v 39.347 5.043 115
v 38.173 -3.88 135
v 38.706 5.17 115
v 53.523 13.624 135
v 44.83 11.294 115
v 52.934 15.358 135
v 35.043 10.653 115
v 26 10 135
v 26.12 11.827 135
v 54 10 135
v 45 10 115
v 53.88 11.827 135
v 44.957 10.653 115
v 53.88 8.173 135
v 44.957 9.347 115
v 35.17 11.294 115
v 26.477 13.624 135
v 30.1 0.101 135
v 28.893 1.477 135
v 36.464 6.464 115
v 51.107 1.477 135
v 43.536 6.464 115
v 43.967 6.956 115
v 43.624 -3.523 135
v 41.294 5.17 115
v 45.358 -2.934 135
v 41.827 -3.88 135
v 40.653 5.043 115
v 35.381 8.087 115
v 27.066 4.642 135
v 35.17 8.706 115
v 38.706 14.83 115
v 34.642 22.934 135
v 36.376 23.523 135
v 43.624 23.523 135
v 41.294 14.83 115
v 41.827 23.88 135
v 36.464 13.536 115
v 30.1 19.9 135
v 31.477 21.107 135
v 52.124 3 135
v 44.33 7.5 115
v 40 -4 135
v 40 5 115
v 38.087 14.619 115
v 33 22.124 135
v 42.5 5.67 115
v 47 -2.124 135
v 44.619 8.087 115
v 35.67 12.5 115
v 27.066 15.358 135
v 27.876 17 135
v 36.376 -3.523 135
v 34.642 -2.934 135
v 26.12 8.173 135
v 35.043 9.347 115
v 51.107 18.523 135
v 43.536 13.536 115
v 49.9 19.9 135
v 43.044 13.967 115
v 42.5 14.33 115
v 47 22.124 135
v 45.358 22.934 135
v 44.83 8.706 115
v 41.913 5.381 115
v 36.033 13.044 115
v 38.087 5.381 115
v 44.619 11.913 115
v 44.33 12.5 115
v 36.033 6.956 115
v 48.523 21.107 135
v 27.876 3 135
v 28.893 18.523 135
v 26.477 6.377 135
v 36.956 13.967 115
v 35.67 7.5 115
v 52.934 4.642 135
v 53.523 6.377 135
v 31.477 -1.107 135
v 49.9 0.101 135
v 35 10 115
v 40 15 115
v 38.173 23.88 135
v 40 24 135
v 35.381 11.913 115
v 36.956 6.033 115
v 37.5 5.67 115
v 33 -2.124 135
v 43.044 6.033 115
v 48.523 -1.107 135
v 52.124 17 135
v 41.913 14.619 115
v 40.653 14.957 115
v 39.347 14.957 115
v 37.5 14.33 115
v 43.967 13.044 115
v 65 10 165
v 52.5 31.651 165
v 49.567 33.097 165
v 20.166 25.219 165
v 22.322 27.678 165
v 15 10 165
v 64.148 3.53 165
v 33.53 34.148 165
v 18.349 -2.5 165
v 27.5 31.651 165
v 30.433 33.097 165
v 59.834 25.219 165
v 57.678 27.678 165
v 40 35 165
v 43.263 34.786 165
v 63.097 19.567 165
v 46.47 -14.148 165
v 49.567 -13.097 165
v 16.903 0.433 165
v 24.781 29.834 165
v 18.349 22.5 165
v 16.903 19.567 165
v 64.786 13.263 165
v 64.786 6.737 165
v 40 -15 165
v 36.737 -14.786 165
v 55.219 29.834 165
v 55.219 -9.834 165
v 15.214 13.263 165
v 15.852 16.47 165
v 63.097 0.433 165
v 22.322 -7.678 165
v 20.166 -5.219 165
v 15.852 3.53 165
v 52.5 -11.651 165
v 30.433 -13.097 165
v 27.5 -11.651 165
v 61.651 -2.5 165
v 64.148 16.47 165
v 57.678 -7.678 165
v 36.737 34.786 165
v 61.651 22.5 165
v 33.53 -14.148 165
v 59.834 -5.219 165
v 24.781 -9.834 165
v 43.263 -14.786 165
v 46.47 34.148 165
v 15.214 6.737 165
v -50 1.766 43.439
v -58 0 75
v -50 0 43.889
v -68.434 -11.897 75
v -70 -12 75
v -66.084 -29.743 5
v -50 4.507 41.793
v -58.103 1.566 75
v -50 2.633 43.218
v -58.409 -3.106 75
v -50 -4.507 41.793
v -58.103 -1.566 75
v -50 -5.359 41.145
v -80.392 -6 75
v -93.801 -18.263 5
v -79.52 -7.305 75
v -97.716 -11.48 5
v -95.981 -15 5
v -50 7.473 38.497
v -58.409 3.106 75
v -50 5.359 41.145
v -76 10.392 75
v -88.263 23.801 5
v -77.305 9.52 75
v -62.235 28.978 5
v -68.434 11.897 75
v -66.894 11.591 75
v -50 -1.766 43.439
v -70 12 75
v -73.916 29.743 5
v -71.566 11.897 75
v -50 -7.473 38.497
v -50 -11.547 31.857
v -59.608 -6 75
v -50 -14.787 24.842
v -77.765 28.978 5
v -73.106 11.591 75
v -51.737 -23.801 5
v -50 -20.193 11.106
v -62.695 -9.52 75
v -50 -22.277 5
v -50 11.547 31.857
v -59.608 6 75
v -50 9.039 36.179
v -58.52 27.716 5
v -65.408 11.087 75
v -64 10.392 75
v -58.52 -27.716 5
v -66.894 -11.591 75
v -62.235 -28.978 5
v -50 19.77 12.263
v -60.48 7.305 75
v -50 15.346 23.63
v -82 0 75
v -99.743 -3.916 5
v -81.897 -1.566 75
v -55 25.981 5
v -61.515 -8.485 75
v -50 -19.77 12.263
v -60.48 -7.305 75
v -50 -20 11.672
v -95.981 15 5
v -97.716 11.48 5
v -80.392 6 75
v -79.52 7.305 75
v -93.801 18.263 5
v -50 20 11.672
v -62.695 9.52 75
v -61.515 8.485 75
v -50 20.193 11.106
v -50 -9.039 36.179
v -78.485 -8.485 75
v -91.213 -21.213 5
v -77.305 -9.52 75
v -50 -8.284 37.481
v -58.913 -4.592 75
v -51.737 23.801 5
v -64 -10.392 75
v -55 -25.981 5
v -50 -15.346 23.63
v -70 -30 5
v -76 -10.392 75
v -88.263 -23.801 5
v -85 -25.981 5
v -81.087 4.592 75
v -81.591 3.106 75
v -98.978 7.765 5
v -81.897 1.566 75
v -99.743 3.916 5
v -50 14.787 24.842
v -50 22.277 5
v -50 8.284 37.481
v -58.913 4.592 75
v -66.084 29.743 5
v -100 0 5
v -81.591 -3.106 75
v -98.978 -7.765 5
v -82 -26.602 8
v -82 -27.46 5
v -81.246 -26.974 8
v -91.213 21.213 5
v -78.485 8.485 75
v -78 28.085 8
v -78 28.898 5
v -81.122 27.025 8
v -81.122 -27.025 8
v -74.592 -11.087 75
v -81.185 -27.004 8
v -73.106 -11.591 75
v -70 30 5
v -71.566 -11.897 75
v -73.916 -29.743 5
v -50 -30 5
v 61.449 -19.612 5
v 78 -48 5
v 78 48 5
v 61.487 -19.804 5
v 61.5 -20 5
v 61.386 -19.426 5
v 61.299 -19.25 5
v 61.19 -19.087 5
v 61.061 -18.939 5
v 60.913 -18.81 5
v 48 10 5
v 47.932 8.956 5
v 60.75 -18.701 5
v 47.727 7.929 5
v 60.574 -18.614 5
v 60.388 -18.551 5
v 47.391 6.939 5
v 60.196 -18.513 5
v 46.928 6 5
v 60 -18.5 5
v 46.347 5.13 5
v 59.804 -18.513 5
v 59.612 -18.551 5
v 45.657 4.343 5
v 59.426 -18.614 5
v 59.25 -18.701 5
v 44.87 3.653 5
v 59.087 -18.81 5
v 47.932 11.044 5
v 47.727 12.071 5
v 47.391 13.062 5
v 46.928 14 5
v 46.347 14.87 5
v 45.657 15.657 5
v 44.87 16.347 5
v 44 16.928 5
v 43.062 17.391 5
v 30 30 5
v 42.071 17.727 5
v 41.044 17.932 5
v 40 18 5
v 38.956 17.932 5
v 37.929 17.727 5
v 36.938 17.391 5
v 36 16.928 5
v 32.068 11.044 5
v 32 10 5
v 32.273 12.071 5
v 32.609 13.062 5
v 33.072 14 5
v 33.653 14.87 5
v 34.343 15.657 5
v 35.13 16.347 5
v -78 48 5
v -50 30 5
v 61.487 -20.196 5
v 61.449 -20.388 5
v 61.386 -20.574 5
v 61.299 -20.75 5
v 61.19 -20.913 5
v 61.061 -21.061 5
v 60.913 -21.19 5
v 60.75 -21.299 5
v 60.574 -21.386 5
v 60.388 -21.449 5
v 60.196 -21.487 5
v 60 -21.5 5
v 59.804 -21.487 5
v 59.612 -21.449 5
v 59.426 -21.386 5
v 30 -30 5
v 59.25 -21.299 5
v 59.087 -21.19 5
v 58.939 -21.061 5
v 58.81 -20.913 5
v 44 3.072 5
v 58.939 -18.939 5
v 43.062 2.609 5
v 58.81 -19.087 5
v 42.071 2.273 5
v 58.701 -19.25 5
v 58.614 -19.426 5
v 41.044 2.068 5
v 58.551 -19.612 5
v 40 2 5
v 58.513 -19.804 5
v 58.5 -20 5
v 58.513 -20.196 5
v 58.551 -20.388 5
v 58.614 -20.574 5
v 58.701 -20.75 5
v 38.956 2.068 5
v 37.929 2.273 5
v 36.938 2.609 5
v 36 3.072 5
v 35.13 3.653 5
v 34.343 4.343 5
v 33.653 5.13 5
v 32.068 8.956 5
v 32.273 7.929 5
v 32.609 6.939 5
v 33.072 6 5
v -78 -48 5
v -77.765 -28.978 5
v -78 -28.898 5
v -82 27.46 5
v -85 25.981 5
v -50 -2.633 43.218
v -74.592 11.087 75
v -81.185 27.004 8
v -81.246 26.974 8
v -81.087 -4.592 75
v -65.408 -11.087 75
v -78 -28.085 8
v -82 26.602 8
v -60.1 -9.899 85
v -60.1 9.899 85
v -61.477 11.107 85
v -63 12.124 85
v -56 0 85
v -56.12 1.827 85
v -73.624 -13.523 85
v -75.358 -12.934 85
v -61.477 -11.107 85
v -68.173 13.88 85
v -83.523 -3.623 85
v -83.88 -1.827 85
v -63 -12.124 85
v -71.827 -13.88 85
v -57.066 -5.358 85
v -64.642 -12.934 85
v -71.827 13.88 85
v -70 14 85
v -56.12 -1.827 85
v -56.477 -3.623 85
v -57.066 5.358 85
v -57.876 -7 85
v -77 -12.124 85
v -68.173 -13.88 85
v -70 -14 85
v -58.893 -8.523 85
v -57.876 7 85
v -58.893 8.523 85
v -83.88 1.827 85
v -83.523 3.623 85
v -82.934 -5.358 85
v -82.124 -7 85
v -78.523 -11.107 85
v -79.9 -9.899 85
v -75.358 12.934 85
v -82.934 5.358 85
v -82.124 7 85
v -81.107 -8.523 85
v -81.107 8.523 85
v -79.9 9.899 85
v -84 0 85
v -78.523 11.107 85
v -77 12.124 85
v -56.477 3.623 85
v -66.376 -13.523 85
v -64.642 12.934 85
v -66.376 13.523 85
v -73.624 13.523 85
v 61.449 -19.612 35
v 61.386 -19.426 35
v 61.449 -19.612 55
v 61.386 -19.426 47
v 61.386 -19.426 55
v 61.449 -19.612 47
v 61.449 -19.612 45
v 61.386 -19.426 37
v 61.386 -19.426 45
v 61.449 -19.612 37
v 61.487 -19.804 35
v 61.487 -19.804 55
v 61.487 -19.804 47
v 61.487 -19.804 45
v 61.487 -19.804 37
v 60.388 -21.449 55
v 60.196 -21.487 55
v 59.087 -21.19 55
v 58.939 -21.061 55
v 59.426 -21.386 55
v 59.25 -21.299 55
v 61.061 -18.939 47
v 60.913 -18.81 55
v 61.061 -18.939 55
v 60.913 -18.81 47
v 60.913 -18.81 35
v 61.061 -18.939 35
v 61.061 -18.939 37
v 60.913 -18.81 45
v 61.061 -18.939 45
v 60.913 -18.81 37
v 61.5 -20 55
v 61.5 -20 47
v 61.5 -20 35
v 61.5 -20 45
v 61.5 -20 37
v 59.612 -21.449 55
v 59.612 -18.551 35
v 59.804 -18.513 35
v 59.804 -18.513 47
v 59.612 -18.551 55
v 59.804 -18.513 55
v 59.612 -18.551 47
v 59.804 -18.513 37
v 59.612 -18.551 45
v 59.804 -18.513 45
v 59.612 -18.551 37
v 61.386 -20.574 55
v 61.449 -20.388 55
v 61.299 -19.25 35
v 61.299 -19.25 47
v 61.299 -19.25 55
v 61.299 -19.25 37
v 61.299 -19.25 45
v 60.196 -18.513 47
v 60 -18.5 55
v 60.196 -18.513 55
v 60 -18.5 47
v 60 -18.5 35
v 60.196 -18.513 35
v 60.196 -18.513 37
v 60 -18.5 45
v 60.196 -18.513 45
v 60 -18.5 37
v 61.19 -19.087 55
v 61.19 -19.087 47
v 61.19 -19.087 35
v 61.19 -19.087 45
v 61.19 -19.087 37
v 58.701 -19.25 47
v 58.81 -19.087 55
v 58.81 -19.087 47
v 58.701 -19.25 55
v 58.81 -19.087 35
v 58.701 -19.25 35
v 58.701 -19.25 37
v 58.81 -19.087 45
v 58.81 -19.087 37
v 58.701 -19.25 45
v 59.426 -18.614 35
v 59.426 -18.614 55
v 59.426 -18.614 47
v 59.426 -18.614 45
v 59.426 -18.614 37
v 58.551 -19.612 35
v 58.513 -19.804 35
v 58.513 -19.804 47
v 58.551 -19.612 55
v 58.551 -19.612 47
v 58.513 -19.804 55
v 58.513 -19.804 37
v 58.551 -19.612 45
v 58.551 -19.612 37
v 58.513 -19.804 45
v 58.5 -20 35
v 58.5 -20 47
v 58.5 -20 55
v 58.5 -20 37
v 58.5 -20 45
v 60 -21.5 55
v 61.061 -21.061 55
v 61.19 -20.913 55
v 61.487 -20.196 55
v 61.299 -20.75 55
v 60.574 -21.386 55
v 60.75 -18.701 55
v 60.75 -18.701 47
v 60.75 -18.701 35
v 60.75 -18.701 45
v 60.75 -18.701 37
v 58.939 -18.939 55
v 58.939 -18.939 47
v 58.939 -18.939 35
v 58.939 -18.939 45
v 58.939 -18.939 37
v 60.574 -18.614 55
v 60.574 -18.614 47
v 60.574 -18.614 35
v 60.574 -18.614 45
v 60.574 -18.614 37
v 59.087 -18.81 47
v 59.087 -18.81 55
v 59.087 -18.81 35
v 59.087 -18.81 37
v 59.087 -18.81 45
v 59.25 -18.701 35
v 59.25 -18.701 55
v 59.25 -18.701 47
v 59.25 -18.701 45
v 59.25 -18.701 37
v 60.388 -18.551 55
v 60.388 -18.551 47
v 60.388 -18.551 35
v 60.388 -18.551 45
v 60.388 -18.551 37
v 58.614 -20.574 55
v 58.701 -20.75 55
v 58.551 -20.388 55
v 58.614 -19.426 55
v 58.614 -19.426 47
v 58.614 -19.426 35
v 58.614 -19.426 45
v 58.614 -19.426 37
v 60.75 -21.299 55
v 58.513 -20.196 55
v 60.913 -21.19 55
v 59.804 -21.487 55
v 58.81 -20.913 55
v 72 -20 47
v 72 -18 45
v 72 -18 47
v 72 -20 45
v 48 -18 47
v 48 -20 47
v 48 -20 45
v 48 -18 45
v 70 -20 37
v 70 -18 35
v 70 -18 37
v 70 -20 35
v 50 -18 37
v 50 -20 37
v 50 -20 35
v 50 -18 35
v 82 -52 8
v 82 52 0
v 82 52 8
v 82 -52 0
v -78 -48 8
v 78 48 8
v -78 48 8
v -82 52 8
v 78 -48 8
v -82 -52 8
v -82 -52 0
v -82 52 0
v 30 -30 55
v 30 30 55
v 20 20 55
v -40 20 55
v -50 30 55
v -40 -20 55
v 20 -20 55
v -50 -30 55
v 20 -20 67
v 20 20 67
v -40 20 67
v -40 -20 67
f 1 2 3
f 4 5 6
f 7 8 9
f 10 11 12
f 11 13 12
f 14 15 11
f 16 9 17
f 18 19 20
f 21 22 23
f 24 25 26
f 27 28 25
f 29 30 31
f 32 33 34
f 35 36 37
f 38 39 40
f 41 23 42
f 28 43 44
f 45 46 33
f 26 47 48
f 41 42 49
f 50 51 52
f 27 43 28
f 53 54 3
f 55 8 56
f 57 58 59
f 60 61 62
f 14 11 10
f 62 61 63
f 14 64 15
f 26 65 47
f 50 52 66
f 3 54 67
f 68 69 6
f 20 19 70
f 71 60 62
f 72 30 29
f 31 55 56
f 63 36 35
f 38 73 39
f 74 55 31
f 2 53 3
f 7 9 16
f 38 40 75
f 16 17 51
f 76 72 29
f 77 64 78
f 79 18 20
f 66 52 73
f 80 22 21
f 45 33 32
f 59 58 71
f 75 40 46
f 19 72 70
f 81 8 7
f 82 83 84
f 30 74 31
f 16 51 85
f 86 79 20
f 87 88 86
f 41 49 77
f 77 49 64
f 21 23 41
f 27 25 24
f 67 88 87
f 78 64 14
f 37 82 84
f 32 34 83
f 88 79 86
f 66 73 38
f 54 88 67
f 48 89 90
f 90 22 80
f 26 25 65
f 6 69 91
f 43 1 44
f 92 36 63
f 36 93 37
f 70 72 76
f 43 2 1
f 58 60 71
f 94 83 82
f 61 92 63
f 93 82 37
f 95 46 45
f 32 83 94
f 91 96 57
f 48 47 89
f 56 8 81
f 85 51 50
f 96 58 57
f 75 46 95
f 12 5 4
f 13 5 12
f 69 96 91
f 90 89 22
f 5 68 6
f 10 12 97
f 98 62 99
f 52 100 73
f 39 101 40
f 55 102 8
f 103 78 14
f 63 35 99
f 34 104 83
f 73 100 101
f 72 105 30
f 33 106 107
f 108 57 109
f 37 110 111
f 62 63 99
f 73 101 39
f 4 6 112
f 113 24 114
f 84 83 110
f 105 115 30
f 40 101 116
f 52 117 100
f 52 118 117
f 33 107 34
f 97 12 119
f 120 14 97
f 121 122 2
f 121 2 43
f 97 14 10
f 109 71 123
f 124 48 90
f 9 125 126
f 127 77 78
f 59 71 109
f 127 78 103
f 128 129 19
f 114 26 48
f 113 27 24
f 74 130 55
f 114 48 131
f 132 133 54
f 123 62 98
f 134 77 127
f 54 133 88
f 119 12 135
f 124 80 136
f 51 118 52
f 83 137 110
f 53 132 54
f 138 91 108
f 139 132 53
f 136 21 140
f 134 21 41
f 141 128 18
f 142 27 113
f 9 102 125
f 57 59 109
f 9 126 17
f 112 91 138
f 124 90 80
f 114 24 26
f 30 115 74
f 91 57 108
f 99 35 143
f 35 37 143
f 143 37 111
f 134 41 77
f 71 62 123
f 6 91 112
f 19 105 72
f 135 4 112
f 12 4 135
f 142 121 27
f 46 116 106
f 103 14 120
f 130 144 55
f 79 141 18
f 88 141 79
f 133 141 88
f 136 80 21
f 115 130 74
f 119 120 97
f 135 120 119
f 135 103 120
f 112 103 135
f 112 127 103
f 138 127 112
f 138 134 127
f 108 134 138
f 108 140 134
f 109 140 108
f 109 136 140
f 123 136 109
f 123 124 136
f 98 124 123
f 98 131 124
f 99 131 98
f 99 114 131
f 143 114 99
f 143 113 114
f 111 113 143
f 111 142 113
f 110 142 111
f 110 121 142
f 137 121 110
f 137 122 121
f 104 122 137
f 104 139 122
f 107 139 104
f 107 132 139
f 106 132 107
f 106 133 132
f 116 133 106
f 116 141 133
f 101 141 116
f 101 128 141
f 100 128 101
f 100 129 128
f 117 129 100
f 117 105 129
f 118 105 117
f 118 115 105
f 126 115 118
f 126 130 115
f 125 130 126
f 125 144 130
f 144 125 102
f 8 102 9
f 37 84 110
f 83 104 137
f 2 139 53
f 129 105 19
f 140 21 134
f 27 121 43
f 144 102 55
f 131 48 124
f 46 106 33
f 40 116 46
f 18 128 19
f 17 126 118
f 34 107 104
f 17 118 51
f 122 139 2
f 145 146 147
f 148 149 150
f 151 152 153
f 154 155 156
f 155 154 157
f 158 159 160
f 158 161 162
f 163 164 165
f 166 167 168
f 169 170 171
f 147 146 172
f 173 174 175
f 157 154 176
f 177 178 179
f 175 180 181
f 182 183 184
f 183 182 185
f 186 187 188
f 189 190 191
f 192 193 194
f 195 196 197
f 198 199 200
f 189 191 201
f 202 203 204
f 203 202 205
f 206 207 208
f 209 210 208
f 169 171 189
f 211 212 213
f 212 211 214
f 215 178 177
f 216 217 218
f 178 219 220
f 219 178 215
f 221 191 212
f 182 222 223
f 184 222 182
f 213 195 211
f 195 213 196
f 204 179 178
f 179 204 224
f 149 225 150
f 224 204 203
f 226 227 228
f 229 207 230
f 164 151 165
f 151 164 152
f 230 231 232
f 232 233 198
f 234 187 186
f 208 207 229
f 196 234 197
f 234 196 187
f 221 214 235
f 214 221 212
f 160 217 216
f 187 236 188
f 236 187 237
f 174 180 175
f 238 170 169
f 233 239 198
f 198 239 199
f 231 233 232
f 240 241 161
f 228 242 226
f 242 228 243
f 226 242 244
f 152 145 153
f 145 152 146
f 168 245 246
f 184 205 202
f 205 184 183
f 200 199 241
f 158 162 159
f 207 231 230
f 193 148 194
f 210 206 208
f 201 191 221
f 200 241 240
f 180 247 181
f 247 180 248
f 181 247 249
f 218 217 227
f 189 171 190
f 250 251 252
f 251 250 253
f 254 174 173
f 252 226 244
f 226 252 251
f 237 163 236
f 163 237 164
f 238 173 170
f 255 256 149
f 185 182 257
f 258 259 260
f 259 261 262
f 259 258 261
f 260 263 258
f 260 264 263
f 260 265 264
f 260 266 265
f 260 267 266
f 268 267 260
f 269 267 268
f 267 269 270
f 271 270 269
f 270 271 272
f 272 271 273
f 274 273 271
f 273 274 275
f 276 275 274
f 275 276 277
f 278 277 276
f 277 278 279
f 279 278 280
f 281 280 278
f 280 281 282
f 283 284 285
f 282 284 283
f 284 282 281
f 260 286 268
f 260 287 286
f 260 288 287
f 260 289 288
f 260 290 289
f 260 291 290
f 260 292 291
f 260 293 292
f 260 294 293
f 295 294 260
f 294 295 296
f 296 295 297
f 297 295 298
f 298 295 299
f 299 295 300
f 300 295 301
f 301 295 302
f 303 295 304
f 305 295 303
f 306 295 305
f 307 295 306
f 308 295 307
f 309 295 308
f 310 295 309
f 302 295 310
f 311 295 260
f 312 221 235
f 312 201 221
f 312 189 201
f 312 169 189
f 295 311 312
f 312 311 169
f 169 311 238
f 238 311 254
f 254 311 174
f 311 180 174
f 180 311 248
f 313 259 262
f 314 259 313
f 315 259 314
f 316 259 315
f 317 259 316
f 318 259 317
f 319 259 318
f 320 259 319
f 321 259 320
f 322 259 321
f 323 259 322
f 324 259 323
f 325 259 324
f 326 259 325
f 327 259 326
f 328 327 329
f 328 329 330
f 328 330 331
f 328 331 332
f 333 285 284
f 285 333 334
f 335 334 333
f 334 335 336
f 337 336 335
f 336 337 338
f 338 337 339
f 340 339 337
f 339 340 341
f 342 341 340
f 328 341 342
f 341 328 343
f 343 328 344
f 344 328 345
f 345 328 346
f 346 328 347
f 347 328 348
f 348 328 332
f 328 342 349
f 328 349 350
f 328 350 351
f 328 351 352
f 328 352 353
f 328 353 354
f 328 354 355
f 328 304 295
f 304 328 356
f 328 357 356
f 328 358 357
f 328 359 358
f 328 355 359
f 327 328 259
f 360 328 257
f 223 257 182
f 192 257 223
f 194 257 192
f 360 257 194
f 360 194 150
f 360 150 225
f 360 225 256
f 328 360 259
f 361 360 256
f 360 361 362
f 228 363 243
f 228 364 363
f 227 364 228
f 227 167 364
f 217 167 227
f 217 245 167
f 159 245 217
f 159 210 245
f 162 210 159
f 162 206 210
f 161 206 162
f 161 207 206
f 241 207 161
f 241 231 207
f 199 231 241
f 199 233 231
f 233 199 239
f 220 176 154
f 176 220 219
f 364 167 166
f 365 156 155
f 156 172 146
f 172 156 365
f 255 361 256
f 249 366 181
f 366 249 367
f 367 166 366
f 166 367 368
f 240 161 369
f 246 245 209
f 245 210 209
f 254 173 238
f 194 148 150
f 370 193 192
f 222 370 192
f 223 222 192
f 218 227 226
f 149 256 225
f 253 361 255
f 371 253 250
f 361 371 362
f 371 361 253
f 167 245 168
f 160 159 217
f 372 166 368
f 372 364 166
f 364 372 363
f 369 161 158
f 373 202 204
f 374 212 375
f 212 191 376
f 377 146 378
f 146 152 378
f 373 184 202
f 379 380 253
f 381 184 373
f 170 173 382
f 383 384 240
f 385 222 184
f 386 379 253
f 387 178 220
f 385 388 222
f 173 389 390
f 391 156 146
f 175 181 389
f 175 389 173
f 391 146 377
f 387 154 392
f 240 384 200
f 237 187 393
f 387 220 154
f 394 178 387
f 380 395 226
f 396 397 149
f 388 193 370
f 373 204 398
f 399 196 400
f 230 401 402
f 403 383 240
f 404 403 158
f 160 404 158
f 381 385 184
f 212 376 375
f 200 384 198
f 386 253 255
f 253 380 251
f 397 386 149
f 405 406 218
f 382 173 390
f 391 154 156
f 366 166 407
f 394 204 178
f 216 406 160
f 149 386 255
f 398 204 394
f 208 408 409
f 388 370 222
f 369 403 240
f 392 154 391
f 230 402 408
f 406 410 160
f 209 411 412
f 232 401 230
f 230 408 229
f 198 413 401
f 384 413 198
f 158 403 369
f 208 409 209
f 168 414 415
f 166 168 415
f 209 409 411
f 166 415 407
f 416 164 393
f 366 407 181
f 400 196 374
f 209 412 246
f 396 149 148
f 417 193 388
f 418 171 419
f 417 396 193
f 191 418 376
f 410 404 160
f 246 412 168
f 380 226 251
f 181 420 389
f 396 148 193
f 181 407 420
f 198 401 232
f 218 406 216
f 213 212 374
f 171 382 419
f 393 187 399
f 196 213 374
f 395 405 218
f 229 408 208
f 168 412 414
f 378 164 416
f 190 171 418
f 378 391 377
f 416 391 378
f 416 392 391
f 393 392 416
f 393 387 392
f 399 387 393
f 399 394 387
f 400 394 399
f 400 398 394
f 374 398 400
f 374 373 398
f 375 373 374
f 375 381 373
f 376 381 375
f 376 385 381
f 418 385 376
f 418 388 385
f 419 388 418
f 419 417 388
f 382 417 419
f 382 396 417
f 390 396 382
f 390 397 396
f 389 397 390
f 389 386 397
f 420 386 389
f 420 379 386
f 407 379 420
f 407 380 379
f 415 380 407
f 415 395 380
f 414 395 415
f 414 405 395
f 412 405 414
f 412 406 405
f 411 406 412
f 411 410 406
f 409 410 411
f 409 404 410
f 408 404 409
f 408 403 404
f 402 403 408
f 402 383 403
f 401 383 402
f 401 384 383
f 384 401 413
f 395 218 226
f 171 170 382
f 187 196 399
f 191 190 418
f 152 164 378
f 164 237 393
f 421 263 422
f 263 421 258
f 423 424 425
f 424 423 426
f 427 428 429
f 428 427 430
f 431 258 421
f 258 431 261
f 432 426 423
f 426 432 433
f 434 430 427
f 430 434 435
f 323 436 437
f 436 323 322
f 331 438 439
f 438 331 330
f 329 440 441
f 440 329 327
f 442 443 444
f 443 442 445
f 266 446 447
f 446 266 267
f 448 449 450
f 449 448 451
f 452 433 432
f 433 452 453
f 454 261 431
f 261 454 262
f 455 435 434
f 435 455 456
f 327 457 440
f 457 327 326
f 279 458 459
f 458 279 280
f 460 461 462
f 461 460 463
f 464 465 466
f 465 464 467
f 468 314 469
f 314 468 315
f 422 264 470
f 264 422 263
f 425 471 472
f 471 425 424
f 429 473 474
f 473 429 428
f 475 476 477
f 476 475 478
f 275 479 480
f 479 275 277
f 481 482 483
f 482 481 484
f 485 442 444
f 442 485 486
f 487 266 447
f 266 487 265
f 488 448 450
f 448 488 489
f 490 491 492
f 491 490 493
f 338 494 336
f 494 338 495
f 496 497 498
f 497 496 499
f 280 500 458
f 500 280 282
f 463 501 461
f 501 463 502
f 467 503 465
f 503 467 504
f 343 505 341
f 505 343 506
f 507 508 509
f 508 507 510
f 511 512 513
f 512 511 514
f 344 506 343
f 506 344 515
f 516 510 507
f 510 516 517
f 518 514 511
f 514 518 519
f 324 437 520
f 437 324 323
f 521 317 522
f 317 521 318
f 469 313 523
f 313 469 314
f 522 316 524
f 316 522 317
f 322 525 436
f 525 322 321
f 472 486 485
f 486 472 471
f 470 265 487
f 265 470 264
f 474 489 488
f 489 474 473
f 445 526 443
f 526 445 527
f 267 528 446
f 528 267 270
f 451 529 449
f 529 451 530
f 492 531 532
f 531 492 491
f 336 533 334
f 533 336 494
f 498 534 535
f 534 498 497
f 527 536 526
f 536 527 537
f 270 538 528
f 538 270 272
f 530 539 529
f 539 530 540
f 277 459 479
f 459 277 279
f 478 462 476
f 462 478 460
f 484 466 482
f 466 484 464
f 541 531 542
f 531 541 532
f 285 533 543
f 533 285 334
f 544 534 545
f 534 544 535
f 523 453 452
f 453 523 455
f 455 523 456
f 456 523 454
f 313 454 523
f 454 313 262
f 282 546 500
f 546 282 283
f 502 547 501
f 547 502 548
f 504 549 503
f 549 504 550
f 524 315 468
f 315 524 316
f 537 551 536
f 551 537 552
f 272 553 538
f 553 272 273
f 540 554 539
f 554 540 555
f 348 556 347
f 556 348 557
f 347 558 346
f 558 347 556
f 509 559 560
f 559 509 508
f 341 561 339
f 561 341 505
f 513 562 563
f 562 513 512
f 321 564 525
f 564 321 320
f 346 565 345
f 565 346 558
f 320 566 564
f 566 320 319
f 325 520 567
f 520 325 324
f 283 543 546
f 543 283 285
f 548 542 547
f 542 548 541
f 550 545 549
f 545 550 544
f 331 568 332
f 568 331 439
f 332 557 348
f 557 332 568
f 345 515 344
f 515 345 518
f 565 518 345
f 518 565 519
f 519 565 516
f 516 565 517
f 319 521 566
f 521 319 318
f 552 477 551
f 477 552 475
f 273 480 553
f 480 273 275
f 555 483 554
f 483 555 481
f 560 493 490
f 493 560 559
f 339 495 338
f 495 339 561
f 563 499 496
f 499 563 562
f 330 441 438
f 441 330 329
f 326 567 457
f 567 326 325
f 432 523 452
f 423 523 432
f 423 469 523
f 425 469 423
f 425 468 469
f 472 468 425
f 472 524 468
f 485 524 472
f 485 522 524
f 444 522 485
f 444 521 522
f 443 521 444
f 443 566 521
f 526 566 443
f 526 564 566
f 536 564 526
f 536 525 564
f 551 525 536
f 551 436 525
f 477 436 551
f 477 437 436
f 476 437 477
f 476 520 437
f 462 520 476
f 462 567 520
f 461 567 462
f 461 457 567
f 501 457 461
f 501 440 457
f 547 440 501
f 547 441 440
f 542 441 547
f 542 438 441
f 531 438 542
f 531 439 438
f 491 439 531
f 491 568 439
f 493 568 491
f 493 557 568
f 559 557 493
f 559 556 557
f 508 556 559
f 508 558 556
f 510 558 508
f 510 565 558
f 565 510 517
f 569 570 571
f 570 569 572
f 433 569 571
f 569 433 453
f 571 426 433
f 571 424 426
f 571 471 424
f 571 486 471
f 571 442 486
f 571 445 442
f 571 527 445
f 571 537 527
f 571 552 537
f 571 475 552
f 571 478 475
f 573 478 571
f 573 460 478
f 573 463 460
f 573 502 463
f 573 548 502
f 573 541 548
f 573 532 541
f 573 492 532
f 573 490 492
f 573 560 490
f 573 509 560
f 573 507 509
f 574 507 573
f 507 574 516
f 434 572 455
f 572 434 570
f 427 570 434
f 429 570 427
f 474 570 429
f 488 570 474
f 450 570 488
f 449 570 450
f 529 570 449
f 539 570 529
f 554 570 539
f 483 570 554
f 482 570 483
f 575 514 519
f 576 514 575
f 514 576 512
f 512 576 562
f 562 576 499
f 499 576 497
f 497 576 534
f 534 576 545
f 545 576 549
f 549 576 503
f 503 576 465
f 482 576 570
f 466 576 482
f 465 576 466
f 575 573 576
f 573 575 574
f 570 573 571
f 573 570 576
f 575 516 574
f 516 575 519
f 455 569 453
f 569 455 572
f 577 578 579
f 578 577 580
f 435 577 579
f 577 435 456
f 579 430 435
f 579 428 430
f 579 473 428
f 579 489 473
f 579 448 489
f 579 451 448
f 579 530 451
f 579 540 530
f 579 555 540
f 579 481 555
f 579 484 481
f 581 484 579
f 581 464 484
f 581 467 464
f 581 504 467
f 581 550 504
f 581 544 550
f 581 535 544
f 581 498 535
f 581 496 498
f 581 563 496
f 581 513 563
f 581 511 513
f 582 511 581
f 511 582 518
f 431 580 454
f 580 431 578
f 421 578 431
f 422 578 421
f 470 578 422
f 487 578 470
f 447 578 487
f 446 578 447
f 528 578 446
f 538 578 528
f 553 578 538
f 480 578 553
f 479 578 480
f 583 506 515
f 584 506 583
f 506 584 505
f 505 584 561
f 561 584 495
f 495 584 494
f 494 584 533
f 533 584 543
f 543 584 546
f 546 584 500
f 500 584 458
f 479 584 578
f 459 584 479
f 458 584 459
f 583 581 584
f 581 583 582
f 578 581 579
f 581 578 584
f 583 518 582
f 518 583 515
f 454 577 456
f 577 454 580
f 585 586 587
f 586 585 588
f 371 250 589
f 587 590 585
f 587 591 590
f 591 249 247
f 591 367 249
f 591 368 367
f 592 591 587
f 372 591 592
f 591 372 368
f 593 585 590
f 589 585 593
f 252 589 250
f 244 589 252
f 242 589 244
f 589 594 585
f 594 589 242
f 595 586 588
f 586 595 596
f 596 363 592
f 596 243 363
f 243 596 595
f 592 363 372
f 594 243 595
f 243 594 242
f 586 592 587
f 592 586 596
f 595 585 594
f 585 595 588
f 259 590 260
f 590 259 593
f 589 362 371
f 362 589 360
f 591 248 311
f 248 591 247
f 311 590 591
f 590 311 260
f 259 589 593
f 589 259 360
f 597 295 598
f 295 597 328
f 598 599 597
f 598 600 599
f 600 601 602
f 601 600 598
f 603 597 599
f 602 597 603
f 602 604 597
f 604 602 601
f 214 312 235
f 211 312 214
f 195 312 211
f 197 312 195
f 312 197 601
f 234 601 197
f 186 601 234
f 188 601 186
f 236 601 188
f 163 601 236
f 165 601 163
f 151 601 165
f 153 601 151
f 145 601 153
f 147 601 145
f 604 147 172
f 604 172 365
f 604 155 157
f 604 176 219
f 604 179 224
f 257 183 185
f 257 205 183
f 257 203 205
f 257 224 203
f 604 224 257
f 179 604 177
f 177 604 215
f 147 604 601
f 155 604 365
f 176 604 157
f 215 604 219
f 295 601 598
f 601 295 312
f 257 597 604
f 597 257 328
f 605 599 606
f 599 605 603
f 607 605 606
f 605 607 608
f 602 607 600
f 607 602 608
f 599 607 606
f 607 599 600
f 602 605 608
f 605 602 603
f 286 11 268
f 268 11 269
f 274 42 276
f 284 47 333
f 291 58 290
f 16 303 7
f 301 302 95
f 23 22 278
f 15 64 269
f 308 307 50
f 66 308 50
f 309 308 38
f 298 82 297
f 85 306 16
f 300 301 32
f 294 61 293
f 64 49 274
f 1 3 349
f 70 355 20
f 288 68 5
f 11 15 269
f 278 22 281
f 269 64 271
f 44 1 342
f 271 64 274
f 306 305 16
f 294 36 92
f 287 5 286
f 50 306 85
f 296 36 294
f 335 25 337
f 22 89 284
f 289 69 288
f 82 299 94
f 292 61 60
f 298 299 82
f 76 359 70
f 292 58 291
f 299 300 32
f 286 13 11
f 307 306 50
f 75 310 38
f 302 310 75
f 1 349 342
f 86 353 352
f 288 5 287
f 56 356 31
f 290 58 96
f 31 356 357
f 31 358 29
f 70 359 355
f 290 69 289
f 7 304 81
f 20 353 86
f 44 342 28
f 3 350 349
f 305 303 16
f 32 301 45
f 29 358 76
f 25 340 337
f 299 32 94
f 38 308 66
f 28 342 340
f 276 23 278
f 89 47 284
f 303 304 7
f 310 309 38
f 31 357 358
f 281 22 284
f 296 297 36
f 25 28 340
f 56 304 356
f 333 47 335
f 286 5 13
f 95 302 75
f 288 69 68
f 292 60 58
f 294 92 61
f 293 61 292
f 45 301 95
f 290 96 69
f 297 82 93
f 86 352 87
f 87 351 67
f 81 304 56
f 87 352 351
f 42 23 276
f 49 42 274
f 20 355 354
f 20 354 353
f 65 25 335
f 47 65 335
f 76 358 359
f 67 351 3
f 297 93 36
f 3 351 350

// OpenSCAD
// 化石燃料電廠 Fossil Fuel Plant — 冷卻塔 + 煙囪 + 廠房
$fn = 48;

// 地面基座
color([0.55, 0.54, 0.52])
  translate([-80, -50, 0]) cube([160, 100, 5]);

// 主廠房（矩形灰色建物）
color([0.52, 0.52, 0.55])
  translate([-50, -30, 5]) cube([80, 60, 50]);

// 廠房屋頂設備
color([0.45, 0.45, 0.48])
  translate([-40, -20, 55]) cube([60, 40, 12]);

// 煙囪（圓形高柱）
color([0.62, 0.62, 0.65])
  translate([40, 10, 5]) cylinder(h = 110, r1 = 8, r2 = 5);

// 煙霧（白色半透明）
color([0.92, 0.92, 0.95, 0.6]) {
  translate([40, 10, 115]) cylinder(h = 20, r1 = 5, r2 = 14);
  translate([40, 10, 135]) cylinder(h = 30, r1 = 14, r2 = 25);
}

// 冷卻塔（雙曲線形）
color([0.68, 0.68, 0.70])
  translate([-70, 0, 5]) {
    cylinder(h = 70, r1 = 30, r2 = 12);
    translate([0, 0, 70]) cylinder(h = 10, r1 = 12, r2 = 14);
  }

// 輸電線塔
color([0.45, 0.45, 0.48]) {
  translate([60, -20, 5]) {
    cylinder(h = 50, r = 1.5);
    translate([-12, 0, 40]) cube([24, 2, 2]);
    translate([-10, 0, 30]) cube([20, 2, 2]);
  }
}

// 圍牆
color([0.48, 0.48, 0.50])
  difference() {
    translate([-82, -52, 0]) cube([164, 104, 8]);
    translate([-78, -48, -1]) cube([156, 96, 10]);
  }
